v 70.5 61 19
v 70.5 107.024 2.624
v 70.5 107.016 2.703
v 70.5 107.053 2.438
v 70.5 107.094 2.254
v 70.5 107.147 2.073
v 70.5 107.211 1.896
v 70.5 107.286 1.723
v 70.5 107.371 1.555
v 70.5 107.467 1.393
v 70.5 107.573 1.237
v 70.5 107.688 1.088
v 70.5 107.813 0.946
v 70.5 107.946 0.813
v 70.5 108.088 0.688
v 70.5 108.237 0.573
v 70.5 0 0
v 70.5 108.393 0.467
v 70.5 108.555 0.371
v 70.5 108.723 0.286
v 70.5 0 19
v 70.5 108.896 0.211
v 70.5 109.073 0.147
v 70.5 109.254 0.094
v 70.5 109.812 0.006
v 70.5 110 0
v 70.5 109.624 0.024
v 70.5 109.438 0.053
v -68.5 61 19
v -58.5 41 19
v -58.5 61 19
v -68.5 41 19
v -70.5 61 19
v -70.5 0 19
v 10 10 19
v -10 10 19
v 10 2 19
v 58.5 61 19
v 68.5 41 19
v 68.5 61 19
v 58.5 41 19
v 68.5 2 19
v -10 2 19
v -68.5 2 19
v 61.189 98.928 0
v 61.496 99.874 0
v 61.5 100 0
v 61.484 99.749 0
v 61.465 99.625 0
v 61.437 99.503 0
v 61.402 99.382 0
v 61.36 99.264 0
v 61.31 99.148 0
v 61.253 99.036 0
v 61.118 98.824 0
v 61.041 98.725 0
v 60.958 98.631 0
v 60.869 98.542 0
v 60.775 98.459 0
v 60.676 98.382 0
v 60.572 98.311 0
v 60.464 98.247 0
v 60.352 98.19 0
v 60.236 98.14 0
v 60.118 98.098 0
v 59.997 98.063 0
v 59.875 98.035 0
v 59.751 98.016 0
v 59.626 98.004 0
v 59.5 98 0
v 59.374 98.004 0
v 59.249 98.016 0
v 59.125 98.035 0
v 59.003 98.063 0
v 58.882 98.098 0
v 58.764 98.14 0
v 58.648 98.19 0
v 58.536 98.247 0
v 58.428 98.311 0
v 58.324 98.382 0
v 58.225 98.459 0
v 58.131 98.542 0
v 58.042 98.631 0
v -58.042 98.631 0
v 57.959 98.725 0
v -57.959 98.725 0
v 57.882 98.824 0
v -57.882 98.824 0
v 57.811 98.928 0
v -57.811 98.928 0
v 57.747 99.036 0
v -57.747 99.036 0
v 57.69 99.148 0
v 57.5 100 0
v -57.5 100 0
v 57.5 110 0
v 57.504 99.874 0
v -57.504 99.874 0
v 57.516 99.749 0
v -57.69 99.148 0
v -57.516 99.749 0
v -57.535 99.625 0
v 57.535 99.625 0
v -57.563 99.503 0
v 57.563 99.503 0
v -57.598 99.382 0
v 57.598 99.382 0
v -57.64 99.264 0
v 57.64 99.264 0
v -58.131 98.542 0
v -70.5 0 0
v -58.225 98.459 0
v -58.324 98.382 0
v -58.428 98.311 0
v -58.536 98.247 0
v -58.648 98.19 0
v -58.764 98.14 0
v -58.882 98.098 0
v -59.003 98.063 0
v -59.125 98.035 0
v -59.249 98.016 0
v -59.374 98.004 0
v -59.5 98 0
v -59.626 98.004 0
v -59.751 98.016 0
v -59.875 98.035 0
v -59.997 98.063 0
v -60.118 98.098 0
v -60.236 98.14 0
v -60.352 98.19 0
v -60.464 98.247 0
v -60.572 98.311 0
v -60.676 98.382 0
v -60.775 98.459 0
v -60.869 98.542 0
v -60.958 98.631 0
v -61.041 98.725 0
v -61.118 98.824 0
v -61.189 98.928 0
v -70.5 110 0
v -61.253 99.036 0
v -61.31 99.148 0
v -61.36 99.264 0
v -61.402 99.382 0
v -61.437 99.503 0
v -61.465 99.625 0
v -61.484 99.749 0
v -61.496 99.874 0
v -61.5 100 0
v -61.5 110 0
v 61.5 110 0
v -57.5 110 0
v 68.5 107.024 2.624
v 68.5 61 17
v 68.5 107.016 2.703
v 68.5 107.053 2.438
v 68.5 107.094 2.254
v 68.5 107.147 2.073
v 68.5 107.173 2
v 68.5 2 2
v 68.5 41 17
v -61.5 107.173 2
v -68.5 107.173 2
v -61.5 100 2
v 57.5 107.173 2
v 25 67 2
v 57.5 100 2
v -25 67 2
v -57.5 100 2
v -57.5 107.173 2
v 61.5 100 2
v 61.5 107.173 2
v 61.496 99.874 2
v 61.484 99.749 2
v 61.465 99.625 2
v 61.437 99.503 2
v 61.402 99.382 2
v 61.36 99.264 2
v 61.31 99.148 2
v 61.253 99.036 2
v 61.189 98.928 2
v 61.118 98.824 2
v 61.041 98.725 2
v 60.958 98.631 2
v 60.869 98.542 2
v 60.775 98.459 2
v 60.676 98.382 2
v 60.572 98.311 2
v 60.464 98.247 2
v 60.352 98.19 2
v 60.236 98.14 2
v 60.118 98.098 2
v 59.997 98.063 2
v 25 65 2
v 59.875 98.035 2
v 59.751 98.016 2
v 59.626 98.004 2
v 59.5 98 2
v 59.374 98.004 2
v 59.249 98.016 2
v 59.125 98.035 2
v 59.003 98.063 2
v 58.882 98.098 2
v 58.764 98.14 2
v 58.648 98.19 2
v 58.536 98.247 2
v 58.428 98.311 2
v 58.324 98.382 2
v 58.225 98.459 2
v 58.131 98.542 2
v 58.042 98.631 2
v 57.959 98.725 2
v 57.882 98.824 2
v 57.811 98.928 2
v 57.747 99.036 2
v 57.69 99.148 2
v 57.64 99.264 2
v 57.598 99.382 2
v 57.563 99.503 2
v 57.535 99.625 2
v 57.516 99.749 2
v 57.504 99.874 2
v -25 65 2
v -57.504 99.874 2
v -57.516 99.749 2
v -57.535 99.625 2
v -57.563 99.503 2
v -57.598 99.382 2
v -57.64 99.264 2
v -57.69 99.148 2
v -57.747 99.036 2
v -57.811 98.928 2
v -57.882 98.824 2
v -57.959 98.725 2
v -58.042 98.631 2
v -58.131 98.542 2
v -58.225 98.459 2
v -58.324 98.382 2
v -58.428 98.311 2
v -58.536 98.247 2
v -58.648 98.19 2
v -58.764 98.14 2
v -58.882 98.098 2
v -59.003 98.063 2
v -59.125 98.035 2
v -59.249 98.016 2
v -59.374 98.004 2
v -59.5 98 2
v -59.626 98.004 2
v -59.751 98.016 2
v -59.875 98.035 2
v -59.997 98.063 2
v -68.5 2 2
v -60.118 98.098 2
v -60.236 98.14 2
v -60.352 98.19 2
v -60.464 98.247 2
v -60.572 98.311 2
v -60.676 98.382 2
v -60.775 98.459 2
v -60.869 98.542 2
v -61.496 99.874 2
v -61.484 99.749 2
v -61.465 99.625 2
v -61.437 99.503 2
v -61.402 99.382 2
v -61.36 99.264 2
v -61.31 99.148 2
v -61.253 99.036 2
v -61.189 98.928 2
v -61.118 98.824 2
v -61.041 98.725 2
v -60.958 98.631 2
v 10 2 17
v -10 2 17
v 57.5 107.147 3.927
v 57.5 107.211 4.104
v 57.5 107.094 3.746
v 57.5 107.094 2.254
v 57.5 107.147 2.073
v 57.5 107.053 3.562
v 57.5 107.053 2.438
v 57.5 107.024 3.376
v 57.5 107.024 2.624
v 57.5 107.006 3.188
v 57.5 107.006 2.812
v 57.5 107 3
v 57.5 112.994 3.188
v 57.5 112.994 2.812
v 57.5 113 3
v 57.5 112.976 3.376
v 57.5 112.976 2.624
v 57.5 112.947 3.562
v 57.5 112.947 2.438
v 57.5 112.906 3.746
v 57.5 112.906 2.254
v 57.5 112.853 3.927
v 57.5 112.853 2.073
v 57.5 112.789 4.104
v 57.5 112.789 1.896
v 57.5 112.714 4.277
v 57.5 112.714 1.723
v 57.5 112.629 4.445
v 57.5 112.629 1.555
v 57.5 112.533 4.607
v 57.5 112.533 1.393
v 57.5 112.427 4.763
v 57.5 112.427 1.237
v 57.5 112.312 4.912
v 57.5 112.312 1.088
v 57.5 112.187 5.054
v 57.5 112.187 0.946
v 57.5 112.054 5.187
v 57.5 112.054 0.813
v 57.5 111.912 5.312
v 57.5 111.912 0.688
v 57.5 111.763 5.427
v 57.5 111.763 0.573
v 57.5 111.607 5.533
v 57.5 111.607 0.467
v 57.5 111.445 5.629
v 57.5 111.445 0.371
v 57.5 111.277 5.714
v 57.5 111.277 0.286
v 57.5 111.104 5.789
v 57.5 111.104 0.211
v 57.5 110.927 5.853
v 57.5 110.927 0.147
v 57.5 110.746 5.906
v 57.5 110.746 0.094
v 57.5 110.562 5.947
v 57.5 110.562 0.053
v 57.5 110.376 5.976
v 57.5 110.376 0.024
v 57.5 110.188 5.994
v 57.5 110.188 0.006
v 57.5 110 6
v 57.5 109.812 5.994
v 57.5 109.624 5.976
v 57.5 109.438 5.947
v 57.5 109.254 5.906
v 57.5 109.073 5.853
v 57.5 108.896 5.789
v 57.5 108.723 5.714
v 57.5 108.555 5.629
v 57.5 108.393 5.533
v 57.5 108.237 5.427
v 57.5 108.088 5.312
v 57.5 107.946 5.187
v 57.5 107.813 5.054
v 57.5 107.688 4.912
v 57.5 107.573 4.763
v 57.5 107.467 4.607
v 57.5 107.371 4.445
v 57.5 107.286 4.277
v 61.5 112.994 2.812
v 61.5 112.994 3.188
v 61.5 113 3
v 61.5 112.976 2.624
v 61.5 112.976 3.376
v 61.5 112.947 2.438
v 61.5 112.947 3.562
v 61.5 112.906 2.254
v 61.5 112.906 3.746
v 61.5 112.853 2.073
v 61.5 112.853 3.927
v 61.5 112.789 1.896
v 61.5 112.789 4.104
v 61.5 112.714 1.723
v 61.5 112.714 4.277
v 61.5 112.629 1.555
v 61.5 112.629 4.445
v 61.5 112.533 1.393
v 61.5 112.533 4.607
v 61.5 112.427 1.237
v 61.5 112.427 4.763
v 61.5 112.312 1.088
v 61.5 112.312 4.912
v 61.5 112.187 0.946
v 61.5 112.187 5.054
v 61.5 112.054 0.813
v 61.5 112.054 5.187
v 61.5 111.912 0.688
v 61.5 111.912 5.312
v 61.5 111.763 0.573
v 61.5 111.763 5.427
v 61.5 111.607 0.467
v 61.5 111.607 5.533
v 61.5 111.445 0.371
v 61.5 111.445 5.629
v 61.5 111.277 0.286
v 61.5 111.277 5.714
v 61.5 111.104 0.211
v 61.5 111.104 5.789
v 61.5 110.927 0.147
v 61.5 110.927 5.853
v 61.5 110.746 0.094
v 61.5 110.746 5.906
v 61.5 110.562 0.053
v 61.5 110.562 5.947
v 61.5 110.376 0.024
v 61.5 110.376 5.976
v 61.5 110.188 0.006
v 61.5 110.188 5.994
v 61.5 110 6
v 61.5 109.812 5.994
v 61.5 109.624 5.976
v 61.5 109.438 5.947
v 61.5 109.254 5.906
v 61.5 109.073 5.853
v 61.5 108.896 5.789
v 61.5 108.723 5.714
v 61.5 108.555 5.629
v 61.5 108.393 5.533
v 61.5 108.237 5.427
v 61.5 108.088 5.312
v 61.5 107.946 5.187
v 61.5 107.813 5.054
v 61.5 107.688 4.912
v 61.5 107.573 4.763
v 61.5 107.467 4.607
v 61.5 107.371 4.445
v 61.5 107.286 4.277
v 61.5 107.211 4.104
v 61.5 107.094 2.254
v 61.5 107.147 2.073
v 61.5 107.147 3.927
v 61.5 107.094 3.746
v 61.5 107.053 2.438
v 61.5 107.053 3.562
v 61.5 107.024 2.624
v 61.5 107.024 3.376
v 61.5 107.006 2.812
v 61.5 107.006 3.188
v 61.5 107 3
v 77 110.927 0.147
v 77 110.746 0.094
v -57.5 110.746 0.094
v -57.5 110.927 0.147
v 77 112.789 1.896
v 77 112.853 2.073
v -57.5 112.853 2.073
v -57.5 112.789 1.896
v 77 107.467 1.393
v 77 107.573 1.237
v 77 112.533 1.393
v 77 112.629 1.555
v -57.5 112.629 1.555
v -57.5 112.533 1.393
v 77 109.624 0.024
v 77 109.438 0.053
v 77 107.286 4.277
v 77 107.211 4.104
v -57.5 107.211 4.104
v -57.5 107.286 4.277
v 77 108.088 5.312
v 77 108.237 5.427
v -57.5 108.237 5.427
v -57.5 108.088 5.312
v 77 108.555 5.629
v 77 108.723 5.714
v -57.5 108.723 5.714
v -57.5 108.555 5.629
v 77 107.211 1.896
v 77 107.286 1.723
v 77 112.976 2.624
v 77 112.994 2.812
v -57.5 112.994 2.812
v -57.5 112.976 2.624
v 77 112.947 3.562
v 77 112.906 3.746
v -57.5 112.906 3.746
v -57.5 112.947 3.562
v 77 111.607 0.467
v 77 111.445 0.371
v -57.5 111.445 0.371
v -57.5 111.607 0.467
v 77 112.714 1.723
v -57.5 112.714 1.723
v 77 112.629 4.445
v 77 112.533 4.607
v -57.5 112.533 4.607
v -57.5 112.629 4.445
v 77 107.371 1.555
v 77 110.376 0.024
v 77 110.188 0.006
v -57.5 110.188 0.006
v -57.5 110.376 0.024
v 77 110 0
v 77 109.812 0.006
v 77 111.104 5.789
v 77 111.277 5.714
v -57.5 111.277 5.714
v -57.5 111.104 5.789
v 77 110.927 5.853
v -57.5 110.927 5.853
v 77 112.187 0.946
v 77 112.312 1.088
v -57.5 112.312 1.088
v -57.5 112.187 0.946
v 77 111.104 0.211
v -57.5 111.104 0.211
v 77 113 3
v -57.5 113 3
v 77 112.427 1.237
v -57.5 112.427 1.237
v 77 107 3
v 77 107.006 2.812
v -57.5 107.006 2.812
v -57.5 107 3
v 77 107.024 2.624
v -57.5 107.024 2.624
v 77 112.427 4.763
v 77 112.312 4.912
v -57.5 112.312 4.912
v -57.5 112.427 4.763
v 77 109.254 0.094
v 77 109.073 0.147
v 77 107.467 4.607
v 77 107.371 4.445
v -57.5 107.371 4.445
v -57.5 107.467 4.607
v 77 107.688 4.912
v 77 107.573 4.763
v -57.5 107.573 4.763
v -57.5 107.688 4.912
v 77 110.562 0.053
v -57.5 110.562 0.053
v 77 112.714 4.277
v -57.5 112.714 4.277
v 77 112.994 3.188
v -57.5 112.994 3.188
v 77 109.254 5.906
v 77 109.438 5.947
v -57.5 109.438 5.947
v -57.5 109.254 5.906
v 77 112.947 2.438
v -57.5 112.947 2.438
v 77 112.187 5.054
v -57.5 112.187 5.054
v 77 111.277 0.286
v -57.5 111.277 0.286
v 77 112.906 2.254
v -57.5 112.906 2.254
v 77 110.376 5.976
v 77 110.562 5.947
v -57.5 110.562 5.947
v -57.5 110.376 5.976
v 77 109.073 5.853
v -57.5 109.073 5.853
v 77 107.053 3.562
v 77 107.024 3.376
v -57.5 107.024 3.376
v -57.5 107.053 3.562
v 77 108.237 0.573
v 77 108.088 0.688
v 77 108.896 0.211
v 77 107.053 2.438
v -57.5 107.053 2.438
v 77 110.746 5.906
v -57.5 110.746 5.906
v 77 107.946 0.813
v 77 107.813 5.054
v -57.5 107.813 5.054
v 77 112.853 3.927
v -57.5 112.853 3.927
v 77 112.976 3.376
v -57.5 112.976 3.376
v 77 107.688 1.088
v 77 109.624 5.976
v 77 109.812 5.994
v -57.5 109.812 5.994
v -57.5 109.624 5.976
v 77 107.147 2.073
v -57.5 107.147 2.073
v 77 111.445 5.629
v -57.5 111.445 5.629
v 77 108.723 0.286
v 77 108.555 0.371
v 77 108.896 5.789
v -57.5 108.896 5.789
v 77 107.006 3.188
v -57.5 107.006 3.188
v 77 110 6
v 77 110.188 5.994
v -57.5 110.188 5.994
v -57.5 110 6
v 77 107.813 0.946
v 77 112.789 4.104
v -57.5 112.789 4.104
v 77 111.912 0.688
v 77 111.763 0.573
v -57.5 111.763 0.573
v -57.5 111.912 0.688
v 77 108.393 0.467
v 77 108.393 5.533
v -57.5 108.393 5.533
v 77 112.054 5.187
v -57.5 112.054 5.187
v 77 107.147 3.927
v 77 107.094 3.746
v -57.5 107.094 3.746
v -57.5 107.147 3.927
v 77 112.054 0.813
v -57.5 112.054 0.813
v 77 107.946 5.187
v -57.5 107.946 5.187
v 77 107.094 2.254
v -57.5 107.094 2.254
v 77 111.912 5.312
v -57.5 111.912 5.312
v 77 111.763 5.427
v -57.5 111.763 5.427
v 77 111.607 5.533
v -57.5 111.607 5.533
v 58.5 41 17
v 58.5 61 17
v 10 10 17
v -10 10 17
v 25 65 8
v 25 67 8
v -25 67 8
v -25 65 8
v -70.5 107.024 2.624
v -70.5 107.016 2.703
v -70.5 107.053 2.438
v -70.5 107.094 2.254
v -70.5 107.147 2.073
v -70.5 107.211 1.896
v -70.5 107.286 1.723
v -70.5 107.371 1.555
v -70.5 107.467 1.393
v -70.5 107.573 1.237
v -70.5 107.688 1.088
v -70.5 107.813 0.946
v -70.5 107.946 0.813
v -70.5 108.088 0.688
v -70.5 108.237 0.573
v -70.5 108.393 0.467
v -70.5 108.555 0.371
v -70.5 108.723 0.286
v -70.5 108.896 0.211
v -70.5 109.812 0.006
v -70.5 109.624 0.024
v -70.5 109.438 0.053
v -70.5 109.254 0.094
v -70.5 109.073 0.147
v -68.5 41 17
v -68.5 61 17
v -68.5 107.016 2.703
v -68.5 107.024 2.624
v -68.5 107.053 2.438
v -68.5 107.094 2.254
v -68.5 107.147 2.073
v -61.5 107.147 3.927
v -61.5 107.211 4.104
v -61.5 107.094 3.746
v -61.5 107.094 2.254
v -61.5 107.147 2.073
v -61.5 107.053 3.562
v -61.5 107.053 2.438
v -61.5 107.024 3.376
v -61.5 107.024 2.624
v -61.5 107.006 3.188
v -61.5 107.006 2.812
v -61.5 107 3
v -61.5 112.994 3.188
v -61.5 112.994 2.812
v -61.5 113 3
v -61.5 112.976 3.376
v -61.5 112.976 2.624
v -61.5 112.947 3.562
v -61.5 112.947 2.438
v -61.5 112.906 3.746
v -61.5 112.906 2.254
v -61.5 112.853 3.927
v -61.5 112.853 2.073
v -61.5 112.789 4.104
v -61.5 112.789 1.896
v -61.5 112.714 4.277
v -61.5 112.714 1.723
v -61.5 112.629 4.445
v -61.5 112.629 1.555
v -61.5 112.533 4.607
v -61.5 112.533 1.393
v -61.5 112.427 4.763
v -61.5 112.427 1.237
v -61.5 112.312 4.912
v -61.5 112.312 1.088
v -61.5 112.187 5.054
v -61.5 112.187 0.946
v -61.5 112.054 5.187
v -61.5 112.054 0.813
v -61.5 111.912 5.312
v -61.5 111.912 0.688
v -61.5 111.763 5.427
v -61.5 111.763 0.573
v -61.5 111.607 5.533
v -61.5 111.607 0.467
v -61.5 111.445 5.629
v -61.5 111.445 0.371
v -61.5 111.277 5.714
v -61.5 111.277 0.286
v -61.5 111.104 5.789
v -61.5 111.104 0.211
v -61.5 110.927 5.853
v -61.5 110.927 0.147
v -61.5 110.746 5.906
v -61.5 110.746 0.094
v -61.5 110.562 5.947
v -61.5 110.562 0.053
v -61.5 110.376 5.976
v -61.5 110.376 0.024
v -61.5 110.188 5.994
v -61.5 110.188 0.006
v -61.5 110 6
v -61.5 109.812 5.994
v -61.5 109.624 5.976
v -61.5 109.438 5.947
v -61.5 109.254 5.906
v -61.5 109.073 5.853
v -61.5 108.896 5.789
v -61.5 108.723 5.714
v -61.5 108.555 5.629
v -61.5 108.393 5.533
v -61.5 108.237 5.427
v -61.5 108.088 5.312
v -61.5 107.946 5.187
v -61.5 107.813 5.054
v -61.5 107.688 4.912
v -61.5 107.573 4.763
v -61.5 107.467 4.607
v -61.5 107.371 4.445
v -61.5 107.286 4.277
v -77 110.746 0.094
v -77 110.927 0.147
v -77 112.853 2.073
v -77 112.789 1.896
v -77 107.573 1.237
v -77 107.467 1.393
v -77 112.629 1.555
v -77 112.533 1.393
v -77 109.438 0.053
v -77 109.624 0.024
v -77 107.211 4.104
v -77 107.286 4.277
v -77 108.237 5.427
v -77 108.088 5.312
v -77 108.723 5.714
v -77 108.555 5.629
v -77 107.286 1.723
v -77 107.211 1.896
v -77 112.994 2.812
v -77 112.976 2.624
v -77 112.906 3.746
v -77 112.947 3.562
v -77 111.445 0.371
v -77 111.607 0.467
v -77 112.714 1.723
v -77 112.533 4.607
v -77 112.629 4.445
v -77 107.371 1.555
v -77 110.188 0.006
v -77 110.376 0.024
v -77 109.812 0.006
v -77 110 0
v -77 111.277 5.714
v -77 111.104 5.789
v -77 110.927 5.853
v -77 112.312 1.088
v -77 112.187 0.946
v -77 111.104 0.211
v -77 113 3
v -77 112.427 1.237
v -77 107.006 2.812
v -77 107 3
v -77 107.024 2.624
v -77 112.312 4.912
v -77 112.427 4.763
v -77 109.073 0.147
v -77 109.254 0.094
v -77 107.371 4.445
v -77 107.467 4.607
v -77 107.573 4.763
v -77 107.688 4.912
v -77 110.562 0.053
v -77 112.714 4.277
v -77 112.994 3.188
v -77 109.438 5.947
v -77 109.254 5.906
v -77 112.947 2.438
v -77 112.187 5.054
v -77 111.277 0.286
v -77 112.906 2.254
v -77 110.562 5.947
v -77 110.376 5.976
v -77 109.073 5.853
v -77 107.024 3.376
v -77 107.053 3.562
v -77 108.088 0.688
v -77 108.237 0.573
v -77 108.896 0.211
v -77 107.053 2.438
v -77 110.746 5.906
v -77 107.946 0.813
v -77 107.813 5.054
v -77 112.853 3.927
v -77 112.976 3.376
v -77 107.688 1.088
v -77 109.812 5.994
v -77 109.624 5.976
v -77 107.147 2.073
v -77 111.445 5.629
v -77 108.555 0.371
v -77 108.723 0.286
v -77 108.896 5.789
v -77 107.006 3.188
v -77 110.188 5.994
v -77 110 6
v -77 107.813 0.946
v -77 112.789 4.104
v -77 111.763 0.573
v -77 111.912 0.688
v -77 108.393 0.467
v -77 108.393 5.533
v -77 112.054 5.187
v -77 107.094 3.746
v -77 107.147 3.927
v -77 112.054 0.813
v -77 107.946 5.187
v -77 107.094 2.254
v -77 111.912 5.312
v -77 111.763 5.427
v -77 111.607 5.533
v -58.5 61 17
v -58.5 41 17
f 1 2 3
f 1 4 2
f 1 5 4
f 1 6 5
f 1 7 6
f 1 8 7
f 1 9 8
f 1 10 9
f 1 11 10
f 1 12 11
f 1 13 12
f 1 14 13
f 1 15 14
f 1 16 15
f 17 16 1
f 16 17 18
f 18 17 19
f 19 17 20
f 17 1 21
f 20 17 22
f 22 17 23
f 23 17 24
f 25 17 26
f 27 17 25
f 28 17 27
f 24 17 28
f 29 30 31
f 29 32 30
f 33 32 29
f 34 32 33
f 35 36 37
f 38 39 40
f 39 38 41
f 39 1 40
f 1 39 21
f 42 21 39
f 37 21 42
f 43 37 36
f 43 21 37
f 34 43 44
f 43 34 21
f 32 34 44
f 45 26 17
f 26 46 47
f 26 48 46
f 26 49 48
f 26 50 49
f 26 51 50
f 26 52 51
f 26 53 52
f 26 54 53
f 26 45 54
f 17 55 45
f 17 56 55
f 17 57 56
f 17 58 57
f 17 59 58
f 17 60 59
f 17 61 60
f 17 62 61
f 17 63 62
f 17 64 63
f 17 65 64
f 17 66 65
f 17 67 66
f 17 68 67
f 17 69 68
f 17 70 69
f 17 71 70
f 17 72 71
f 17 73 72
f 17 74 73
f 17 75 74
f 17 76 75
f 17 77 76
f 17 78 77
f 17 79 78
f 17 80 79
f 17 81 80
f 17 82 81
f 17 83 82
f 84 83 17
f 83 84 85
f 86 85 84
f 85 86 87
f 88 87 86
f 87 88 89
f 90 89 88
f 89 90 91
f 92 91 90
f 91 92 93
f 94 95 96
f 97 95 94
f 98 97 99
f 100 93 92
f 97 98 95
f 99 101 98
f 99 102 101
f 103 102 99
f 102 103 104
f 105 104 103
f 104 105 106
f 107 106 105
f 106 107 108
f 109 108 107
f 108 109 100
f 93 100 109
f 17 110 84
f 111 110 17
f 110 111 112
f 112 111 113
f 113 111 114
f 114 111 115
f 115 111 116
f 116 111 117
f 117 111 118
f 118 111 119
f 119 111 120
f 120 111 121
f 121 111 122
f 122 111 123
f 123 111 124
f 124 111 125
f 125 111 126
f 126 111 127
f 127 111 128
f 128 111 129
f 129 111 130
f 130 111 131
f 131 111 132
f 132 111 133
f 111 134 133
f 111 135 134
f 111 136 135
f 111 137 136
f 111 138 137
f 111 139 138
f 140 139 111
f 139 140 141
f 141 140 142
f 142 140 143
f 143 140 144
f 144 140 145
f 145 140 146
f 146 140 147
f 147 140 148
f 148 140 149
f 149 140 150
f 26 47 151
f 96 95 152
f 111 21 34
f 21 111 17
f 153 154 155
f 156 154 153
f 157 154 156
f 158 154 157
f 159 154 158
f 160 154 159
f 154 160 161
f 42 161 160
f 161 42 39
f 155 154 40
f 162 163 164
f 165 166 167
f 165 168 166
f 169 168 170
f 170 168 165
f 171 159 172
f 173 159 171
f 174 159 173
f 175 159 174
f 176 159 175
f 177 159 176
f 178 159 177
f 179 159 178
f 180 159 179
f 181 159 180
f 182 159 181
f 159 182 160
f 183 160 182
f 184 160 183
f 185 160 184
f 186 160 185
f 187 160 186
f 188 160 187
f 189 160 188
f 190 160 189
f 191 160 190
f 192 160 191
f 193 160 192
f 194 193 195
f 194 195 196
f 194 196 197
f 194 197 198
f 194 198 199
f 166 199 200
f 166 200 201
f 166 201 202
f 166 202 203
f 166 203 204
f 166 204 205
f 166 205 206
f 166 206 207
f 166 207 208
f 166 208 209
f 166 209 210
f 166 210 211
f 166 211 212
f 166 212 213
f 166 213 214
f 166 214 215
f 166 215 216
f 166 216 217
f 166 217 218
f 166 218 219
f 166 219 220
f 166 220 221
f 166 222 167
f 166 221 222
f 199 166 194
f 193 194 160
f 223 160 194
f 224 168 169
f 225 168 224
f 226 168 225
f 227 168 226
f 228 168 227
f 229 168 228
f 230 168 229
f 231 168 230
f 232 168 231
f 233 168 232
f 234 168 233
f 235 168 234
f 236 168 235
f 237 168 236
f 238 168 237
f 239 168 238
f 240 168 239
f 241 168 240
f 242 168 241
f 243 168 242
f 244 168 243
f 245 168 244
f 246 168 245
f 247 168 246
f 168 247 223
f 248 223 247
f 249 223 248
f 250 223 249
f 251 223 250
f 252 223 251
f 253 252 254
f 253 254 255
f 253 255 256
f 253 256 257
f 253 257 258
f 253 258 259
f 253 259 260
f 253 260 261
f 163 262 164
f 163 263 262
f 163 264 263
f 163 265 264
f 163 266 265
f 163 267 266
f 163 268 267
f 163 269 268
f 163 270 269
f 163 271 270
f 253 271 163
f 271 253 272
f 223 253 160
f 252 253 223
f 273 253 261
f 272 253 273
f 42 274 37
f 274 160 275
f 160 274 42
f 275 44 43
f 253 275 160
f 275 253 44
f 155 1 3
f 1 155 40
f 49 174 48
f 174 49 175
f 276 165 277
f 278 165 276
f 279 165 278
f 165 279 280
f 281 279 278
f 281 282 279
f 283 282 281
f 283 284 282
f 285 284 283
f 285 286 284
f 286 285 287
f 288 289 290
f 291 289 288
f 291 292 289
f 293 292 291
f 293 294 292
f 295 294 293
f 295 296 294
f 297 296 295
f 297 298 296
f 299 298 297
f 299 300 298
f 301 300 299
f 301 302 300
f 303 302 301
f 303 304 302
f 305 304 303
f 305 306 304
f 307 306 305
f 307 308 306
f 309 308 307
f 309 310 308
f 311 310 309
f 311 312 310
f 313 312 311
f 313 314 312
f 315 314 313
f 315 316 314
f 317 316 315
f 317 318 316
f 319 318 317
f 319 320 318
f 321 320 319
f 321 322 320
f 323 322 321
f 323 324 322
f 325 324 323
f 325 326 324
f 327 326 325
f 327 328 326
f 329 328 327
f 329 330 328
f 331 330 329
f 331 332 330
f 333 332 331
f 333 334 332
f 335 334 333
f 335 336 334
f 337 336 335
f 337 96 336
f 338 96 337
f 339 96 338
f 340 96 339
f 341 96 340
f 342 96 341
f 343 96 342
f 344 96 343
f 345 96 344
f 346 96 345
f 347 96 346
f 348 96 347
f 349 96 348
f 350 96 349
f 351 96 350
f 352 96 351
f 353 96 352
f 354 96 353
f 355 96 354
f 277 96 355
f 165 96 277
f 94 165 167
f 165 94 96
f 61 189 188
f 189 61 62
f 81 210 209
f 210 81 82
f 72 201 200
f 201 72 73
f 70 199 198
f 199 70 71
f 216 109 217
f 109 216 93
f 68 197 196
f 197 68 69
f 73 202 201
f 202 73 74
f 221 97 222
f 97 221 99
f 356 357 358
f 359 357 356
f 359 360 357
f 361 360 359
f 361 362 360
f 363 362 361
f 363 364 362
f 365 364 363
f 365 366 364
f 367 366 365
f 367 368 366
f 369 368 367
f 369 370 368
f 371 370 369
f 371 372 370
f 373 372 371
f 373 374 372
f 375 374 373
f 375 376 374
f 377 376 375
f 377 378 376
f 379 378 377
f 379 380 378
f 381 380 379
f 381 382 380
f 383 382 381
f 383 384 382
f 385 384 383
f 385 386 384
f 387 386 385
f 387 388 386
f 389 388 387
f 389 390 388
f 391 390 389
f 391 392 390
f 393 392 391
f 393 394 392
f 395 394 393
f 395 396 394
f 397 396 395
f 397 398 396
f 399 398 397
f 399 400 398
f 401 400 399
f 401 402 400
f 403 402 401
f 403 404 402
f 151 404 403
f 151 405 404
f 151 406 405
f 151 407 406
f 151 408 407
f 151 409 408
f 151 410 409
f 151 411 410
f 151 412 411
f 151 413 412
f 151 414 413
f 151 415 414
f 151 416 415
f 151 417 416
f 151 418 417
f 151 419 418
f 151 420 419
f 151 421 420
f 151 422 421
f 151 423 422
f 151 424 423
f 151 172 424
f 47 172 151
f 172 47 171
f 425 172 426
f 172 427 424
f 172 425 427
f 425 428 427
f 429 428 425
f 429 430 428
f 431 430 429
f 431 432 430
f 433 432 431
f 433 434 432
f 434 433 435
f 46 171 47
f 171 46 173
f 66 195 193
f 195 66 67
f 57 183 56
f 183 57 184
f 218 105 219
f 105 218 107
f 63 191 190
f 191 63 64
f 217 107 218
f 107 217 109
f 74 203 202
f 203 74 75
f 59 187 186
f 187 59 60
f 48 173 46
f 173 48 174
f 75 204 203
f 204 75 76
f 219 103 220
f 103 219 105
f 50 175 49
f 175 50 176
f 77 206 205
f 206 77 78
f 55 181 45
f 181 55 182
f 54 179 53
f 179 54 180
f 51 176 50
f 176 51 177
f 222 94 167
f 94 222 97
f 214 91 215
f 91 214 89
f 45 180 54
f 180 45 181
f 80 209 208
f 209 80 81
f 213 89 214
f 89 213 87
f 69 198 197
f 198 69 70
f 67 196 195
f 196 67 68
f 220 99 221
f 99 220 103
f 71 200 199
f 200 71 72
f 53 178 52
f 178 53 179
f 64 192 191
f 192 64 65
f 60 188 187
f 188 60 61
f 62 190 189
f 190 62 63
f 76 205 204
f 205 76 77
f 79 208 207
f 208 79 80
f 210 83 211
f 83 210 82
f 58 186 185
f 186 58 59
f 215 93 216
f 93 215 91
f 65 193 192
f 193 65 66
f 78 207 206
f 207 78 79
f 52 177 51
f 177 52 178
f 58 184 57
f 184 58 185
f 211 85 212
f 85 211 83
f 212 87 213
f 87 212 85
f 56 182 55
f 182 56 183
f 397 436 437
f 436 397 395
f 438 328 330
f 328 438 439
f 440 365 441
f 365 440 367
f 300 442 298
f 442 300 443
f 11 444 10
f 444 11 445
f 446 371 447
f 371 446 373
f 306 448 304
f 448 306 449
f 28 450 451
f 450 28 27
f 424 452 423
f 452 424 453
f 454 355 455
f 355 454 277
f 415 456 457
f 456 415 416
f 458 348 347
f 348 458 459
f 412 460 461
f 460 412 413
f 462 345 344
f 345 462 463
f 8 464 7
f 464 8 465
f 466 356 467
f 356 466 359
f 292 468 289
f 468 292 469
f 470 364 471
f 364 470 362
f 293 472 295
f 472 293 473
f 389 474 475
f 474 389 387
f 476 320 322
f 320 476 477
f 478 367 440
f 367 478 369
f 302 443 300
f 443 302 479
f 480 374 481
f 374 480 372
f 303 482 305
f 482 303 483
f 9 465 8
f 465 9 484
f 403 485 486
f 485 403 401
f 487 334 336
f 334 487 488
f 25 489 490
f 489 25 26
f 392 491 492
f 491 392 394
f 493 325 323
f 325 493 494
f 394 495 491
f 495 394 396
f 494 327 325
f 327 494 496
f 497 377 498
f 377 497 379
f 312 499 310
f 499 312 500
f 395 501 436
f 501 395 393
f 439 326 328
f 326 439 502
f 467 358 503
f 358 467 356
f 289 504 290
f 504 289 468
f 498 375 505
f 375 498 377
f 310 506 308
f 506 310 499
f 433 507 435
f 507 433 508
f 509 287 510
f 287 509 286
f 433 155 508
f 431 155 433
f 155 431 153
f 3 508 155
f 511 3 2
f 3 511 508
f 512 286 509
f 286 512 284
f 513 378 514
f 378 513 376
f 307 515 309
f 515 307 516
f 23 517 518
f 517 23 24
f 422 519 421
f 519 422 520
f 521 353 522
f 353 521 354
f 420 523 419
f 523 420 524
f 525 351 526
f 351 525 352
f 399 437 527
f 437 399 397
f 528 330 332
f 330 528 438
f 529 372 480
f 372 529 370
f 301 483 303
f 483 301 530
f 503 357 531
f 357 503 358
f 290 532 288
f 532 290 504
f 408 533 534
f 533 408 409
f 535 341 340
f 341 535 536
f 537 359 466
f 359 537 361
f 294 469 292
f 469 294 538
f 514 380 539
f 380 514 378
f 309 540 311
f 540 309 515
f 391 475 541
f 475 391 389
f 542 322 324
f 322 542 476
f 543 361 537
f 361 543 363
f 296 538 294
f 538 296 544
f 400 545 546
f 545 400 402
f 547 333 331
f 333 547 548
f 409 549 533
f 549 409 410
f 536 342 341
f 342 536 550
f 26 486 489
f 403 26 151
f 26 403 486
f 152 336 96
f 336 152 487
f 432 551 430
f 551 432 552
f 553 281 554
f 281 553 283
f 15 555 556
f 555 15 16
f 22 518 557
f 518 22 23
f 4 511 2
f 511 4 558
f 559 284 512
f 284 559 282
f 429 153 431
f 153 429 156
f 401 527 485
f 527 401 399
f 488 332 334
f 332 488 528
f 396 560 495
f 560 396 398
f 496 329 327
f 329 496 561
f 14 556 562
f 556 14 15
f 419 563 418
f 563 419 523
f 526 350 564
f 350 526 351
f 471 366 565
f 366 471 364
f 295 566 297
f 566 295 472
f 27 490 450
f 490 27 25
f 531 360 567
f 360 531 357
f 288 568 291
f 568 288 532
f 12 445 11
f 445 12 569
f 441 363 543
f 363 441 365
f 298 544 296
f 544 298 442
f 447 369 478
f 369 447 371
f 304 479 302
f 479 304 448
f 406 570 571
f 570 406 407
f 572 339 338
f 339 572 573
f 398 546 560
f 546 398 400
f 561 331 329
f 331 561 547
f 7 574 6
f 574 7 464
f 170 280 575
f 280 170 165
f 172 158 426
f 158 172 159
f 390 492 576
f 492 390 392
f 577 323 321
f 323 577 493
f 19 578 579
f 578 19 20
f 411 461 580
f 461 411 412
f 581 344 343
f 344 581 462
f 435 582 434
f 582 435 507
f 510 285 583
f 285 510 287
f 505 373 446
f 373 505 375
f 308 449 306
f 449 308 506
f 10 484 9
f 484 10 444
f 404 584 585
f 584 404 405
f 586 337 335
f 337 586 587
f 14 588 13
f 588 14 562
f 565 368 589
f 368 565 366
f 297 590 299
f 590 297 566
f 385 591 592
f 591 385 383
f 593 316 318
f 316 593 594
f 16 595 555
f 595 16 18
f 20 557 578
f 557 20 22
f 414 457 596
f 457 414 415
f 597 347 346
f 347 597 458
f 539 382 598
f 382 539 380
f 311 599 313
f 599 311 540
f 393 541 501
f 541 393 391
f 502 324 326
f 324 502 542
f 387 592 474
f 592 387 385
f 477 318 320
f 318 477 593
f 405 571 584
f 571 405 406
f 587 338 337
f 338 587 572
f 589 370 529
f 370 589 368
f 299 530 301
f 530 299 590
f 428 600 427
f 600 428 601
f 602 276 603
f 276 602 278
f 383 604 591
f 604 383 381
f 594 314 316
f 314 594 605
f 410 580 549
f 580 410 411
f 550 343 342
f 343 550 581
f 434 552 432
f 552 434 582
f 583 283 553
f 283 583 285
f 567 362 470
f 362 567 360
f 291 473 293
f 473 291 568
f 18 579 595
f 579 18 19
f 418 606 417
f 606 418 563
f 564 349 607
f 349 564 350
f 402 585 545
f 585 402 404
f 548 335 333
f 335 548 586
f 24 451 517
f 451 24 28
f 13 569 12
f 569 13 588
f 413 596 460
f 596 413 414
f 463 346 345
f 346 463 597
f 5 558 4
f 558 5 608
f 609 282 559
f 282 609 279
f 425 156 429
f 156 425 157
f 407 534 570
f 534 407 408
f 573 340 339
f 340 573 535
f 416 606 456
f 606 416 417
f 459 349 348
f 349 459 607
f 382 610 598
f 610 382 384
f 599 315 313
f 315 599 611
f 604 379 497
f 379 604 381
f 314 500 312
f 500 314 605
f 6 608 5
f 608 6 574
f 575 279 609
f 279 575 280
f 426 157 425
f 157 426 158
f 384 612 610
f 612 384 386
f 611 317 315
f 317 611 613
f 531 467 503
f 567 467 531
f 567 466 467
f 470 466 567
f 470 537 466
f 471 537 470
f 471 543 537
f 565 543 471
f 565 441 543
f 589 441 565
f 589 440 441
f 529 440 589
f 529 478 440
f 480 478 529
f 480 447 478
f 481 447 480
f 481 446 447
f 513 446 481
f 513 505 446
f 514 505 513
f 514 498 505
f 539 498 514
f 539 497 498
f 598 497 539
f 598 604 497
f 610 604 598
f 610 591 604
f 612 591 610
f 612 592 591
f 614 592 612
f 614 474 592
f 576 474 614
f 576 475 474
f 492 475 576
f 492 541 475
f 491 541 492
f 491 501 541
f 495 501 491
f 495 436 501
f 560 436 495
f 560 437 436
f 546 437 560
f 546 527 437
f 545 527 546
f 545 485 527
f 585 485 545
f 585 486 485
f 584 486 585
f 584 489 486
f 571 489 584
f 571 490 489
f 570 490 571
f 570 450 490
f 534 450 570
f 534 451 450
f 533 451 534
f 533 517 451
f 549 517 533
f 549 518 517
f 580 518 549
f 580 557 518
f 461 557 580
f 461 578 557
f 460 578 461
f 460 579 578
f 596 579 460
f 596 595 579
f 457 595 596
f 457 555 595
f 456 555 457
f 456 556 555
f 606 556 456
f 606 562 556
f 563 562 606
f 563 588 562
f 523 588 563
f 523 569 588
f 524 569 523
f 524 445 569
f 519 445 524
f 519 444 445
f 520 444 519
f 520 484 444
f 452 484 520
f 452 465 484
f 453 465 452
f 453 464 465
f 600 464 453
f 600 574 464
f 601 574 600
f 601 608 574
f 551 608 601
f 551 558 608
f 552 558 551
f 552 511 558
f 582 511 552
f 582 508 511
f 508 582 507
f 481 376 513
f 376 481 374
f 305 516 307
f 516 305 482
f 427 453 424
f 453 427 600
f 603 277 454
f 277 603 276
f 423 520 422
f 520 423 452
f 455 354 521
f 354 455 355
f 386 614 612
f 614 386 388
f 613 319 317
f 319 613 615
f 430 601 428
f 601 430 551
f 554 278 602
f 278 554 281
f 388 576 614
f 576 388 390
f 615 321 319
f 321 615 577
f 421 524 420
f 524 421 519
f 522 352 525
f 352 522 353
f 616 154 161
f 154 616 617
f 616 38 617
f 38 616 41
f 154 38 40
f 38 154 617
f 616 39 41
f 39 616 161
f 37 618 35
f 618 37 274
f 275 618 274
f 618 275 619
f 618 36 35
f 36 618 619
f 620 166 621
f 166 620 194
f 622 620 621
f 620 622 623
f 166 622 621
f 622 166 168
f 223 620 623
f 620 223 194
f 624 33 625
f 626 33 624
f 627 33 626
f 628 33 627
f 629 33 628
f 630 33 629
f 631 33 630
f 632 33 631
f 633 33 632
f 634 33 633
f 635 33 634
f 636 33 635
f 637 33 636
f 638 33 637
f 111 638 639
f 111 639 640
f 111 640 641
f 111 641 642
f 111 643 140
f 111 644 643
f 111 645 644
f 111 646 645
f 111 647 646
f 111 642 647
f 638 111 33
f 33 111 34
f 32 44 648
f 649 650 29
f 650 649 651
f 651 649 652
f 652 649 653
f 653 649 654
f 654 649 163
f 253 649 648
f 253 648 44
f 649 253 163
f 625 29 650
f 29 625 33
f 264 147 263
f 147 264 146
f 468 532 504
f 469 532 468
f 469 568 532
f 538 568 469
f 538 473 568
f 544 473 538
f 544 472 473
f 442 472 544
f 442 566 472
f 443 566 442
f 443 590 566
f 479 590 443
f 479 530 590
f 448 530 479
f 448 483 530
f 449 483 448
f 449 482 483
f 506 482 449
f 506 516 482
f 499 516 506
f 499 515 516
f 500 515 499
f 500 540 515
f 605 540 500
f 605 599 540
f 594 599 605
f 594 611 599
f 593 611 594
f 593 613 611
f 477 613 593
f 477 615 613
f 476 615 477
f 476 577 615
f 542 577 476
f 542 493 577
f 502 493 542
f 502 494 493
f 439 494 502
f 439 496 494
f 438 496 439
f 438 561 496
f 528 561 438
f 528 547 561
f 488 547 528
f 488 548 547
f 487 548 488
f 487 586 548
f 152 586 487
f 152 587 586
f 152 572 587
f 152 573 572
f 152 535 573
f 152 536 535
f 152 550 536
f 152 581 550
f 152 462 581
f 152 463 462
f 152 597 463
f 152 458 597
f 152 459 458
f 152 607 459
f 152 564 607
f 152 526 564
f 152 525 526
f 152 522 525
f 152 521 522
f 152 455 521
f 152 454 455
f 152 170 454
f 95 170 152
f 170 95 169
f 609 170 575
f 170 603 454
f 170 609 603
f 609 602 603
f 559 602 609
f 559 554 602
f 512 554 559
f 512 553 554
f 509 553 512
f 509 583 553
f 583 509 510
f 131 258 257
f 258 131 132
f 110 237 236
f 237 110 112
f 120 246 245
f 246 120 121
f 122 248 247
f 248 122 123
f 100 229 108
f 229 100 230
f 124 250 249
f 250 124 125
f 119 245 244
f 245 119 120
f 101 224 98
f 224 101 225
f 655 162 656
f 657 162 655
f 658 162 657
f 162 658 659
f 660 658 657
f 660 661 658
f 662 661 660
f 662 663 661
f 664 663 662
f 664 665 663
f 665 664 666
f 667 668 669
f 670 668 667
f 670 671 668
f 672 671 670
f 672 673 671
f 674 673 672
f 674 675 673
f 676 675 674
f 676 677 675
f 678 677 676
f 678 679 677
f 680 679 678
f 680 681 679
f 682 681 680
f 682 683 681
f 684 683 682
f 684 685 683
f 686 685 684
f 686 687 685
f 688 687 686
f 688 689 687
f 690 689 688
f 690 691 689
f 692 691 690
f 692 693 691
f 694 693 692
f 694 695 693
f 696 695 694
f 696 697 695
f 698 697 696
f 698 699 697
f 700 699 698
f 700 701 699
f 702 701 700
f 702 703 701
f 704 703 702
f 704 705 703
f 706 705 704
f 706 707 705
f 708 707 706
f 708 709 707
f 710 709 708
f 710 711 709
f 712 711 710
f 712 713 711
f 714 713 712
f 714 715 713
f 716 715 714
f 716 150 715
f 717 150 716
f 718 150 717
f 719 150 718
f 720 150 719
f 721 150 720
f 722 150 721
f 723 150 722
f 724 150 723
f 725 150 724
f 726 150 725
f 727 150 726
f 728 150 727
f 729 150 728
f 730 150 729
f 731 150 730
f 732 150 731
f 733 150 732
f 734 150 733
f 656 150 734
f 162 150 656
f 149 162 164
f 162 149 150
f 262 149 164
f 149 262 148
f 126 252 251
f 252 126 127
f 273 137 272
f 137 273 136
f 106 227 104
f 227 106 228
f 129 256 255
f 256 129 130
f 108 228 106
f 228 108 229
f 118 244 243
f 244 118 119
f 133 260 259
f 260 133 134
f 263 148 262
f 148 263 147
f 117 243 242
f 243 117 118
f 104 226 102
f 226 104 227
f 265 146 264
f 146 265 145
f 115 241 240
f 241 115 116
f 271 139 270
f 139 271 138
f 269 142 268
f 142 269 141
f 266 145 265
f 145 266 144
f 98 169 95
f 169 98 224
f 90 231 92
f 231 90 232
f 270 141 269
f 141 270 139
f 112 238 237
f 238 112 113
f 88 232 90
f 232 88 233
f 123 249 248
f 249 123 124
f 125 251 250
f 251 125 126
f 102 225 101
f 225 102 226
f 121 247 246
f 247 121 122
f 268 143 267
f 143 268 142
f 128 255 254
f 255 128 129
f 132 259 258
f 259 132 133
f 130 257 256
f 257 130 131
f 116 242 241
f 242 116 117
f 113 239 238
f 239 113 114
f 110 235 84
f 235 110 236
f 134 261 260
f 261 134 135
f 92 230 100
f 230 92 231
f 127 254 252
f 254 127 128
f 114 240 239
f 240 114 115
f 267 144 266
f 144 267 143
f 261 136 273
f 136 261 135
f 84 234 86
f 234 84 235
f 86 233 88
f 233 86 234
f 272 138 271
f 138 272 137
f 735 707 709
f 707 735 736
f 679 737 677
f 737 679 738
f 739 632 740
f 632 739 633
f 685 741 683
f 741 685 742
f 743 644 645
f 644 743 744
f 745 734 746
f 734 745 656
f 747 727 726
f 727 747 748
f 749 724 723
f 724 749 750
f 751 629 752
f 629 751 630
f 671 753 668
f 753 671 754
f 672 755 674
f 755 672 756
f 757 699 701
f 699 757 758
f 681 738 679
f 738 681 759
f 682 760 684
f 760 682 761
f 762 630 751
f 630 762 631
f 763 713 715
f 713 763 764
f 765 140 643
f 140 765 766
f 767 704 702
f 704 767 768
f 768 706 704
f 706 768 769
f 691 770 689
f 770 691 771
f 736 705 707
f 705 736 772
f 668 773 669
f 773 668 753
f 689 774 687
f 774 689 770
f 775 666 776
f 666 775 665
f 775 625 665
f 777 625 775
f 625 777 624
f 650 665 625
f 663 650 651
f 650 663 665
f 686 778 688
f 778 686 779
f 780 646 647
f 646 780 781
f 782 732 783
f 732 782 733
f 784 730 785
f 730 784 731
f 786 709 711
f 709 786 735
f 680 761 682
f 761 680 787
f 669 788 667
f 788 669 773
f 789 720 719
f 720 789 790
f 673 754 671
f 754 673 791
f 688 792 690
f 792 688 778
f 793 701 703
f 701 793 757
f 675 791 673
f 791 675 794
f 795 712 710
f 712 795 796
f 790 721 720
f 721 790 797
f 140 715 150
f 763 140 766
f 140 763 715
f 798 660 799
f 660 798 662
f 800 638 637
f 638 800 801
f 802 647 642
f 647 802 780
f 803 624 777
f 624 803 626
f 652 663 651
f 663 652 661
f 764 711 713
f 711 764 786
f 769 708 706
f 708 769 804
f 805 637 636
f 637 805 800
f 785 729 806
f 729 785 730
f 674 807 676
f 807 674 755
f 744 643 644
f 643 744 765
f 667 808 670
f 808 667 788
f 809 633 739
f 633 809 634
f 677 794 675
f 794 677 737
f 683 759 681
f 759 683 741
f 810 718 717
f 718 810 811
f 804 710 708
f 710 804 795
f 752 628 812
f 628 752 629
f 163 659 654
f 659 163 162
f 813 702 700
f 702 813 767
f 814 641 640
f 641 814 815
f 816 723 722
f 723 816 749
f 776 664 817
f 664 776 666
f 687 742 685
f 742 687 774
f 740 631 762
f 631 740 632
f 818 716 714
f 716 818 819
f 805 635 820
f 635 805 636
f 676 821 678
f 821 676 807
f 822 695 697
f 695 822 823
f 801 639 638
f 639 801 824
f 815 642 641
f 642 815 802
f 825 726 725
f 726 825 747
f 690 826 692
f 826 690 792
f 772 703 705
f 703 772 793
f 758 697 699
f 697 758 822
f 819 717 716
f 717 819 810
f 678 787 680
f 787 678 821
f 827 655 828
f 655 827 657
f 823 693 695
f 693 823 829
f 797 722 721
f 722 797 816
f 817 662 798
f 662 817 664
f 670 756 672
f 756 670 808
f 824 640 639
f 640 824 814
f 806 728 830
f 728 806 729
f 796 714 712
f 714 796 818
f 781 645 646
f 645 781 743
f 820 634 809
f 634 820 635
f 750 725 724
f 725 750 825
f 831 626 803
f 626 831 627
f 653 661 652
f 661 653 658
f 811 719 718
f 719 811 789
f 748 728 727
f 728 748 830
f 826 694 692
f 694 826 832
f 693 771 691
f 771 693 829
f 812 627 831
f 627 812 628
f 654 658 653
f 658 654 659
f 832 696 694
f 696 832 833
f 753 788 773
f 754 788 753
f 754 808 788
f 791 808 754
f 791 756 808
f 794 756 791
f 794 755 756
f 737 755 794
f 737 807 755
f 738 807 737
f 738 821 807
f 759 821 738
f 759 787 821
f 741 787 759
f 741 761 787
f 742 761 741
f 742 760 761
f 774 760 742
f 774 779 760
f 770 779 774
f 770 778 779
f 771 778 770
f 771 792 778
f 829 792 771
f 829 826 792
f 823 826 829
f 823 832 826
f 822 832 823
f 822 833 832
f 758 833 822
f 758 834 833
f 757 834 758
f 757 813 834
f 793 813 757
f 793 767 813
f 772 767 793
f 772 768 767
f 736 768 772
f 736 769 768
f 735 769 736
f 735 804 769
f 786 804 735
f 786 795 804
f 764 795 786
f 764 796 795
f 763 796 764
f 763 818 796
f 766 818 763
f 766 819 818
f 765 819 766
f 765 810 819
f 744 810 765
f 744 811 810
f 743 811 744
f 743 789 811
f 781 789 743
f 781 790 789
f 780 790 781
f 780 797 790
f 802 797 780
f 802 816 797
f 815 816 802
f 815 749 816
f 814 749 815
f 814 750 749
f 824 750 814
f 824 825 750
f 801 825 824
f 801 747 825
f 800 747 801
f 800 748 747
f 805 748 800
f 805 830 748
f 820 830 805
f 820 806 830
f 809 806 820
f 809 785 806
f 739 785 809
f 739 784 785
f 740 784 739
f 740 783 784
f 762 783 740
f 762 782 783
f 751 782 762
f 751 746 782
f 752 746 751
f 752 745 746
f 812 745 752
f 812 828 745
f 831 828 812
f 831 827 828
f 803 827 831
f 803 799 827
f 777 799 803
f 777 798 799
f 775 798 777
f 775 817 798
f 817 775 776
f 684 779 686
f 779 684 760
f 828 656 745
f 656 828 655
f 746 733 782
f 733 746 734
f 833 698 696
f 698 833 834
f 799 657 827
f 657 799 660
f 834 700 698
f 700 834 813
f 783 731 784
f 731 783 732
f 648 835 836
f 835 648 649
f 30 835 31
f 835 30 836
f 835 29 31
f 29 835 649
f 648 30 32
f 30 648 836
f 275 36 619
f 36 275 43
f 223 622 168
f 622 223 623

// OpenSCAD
module halfPart()
{
    difference()
    {
        difference()
        {
            difference()
            {
                cube([70.5, 110, 19]);
                translate([0, 2, 2])
                {
                    cube([68.5, 108, 17]);
                }
            }

            hull()
            {
                translate([68.5,109,19])
                {
                    cube([2, 1, 1]);
                }

                translate([68.5,61,19])
                {
                    cube([2, 1, 1]);
                }

                translate([68.5,109,2])
                {
                    cube([2, 1, 1]);
                }
            }
        }

        translate([59.5, 100, 0])
        {
            hull()
            {
                cylinder(h = 8, r = 2, $fn = 100);
                translate([0 , 20, 0])
                {
                    cylinder(h = 8, r = 2, $fn = 100);
                }
            }
        }
    }

    difference()
    {
        translate([0, 110, 3])
        {
            rotate([0,90,0])
            {
                cylinder(h = 77, r = 3, $fn = 100);
            }
        }
        translate([59.5, 100, 0])
        {
            hull()
            {
                cylinder(h = 8, r = 2, $fn = 100);
                translate([0 , 20, 0])
                {
                    cylinder(h = 8, r = 2, $fn = 100);
                }
            }
        }
    }

    translate([58.5, 41, 17])
    {
        cube([10, 20, 2]);
    }

    translate([0, 0, 17])
    {
        cube([10, 10, 2]);
    }

    translate([0, 65, 2])
    {
        cube([25, 2, 6]);
    }
}

halfPart();
mirror([1, 0, 0]) halfPart();
